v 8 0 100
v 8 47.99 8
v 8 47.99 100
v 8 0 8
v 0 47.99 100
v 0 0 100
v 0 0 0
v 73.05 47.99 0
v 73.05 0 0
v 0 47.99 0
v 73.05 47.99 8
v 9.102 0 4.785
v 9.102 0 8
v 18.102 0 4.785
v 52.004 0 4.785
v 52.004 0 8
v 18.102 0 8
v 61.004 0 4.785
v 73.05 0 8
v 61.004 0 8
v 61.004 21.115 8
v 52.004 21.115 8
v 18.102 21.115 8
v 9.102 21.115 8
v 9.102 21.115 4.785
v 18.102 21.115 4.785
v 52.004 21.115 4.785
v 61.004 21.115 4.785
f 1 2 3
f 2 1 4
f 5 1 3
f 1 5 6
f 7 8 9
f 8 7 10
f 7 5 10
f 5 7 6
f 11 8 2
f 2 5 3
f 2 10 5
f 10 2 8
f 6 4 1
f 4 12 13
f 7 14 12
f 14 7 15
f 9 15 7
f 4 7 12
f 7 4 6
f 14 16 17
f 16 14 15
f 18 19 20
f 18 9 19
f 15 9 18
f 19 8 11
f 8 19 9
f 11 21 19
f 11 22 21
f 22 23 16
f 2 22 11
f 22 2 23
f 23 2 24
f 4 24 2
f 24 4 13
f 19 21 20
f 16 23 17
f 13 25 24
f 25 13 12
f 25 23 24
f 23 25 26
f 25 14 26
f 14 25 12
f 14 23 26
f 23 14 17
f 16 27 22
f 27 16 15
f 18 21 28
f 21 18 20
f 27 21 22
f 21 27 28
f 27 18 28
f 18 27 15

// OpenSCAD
/* doodle-meta {"version":1,"parameters":{"width":{"label":"Overall width","description":"Changes the body width","unit":"mm","feature":"body_width"},"depth":{"label":"Overall depth","description":"Changes the body depth","unit":"mm","feature":"body_depth"},"height":{"label":"Overall height","description":"Changes the body height","unit":"mm","feature":"body_height"},"backplate_thickness":{"label":"Backplate thickness","description":"Thickness of the vertical backplate","unit":"mm","feature":"backplate"},"base_thickness":{"label":"Base thickness","description":"Thickness of the horizontal base flange","unit":"mm","feature":"base"},"cutout_rect_w":{"label":"Rect cutout width","description":"Width of the top-left rectangular cutout","unit":"mm","feature":"cutout_rect"},"cutout_rect_h":{"label":"Rect cutout height","description":"Height of the top-left rectangular cutout","unit":"mm","feature":"cutout_rect"},"cutout_slot_w":{"label":"Slot width","description":"Width of the vertical slot cutouts","unit":"mm","feature":"cutout_slot"},"cutout_slot_h_top":{"label":"Top slot height","description":"Height of the top-middle slot cutout","unit":"mm","feature":"cutout_slot"},"cutout_slot_h_bot":{"label":"Bottom slot height","description":"Height of the bottom slot cutouts","unit":"mm","feature":"cutout_slot"}},"features":{"body_width":{"kind":"dimension","axis":"x","label":"Overall width"},"body_depth":{"kind":"dimension","axis":"y","label":"Overall depth"},"body_height":{"kind":"dimension","axis":"z","label":"Overall height"},"backplate":{"kind":"region","label":"Vertical backplate","min":[0,0,0],"max":[{"parameter":"backplate_thickness"},{"parameter":"depth"},{"parameter":"height"}]},"base":{"kind":"region","label":"Horizontal base","min":[0,0,0],"max":[{"parameter":"width"},{"parameter":"depth"},{"parameter":"base_thickness"}]},"cutout_rect":{"kind":"region","label":"Top-left rectangle cutout","min":[{"parameter":"width","scale":0.1231,"offset":0},{"parameter":"backplate_thickness","offset":-1},{"parameter":"height","scale":0.7989,"offset":0}],"max":[{"parameter":"width","scale":0.4273,"offset":0},{"parameter":"backplate_thickness","offset":1},{"parameter":"height","scale":0.9447,"offset":0}]},"cutout_slot":{"kind":"region","label":"Slot cutouts","min":[{"parameter":"width","scale":0.12465,"offset":0},{"parameter":"backplate_thickness","offset":-1},{"parameter":"height","scale":0.4801,"offset":0}],"max":[{"parameter":"width","scale":0.83505,"offset":0},{"parameter":"backplate_thickness","offset":1},{"parameter":"height","scale":0.9135,"offset":0}]}}} */

// --- Parameters ---
width = 73.05;
depth = 47.99;
height = 100.0;
backplate_thickness = 8.0;
base_thickness = 8.0;

// Cutout dimensions (derived from normalized view measurements)
cutout_rect_w = 22.22;
cutout_rect_h = 14.58;
cutout_slot_w = 9.0;
cutout_slot_h_top = 36.48;
cutout_slot_h_bot = 44.23;

// Cutout centers (derived from normalized view measurements)
// Front view mapping: X = u * width, Z = (1 - v) * height
rect_cx = 0.2752 * width;
rect_cz = (1.0 - 0.2011) * height;

slot_top_cx = 0.5597 * width;
slot_top_cz = (1.0 - 0.2011) * height;

slot_bl_cx = 0.1862 * width;
slot_bl_cz = (1.0 - 0.7022) * height;

slot_br_cx = 0.7735 * width;
slot_br_cz = (1.0 - 0.7022) * height;

// --- Modules ---
module slot_cutter(w, h, cx, cz) {
    // Vertical slot centered at (cx, cz) in XZ plane, cutting through Y
    // Using a cube for simplicity as per intent (rectangle ideal shape)
    // If rounded ends were strictly required by "slot" definition, we'd use hull of cylinders.
    // Given "rectangle" ideal shape in intent_refinements, a rectangular cutout is appropriate.
    translate([cx, -1, cz])
        rotate([90, 0, 0])
            cube([w, depth + 2, h], center=true);
}

module rect_cutter(w, h, cx, cz) {
    translate([cx, -1, cz])
        rotate([90, 0, 0])
            cube([w, depth + 2, h], center=true);
}

// --- Main Design ---
difference() {
    // 1. Positive Body: L-Shape
    union() {
        // Vertical Backplate (Left side, full height)
        // Extends from X=0 to backplate_thickness, Y=0 to depth, Z=0 to height
        cube([backplate_thickness, depth, height]);
        
        // Horizontal Base (Bottom, extending right)
        // Extends from X=0 to width, Y=0 to depth, Z=0 to base_thickness
        // Note: Overlap with backplate is handled by union
        cube([width, depth, base_thickness]);
    }

    // 2. Subtractive Cutouts (Through the backplate)
    // All cutouts are on the vertical backplate (X < backplate_thickness)
    // They cut along Y axis.
    
    // Top-Left Rectangle
    rect_cutter(cutout_rect_w, cutout_rect_h, rect_cx, rect_cz);
    
    // Top-Middle Slot
    slot_cutter(cutout_slot_w, cutout_slot_h_top, slot_top_cx, slot_top_cz);
    
    // Bottom-Left Slot
    slot_cutter(cutout_slot_w, cutout_slot_h_bot, slot_bl_cx, slot_bl_cz);
    
    // Bottom-Right Slot
    slot_cutter(cutout_slot_w, cutout_slot_h_bot, slot_br_cx, slot_br_cz);
}
